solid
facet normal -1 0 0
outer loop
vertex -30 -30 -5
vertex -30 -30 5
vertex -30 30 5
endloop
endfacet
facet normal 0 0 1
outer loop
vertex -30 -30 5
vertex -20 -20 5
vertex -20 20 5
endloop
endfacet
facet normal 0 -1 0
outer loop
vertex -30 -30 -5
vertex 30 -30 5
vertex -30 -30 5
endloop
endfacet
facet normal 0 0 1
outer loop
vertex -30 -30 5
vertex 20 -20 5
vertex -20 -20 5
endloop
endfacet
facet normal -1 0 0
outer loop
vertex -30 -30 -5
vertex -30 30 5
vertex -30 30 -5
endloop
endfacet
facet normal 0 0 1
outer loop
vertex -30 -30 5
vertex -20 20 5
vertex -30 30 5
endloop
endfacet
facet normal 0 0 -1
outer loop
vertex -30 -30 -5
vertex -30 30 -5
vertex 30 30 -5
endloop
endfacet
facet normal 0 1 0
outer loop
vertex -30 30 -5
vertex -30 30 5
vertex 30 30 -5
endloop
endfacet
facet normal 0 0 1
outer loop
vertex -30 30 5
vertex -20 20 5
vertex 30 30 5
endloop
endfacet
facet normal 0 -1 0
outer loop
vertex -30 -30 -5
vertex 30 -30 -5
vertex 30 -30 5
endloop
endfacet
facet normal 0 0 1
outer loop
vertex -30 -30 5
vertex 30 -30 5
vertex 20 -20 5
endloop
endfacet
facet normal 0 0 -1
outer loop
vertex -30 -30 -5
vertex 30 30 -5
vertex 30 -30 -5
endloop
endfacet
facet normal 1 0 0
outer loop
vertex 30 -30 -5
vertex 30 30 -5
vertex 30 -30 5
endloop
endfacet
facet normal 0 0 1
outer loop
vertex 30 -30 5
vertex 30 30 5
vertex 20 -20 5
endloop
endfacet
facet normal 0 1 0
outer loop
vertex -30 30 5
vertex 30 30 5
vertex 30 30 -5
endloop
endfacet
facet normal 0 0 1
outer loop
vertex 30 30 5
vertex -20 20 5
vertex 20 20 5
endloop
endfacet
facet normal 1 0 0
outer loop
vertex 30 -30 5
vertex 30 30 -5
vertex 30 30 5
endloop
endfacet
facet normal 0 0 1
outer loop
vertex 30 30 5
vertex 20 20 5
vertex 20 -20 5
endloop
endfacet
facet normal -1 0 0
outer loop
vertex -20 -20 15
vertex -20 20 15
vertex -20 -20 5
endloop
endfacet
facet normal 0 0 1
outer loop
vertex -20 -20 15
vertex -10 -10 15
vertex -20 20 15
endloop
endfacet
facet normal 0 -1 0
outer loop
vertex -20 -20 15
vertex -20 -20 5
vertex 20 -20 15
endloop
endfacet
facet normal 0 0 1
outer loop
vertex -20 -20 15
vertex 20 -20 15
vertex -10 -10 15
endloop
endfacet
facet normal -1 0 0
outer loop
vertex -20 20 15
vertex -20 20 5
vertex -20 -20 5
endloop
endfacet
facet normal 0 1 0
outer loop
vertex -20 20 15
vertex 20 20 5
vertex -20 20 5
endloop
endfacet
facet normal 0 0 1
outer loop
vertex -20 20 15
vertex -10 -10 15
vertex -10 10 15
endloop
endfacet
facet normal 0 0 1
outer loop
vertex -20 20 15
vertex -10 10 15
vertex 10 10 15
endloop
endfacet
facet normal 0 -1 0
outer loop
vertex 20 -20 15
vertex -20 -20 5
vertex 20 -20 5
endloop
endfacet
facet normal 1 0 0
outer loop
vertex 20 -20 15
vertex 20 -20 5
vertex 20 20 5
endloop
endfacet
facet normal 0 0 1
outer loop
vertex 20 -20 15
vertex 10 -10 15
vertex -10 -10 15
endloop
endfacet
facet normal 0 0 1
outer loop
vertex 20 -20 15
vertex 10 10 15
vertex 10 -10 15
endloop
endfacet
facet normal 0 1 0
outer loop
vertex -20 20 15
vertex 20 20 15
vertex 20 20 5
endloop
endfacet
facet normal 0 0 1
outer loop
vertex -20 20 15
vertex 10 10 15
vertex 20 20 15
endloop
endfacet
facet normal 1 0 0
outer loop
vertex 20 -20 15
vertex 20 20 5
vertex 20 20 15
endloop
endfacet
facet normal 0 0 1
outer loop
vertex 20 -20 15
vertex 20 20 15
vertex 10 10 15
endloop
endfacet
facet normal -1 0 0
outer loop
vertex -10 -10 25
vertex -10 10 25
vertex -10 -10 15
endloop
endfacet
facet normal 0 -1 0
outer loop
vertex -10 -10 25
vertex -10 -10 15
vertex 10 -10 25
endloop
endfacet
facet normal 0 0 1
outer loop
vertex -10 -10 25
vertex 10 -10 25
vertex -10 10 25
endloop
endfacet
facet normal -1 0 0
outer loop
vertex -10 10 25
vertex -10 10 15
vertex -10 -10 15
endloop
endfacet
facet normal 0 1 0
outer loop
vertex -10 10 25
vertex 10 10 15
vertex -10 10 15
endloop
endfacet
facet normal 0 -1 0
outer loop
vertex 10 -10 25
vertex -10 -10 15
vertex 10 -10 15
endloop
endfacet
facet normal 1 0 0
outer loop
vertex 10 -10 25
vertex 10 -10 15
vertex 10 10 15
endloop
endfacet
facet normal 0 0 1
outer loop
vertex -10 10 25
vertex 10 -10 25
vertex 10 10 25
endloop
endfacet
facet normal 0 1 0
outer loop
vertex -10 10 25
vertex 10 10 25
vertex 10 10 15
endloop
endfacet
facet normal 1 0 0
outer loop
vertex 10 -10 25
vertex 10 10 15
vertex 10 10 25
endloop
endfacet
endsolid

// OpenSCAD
cube([60, 60, 10], center = true);

translate([0, 0, 10])
    cube([40, 40, 10], center = true);

translate([0, 0, 20])
    cube([20, 20, 10], center = true);
